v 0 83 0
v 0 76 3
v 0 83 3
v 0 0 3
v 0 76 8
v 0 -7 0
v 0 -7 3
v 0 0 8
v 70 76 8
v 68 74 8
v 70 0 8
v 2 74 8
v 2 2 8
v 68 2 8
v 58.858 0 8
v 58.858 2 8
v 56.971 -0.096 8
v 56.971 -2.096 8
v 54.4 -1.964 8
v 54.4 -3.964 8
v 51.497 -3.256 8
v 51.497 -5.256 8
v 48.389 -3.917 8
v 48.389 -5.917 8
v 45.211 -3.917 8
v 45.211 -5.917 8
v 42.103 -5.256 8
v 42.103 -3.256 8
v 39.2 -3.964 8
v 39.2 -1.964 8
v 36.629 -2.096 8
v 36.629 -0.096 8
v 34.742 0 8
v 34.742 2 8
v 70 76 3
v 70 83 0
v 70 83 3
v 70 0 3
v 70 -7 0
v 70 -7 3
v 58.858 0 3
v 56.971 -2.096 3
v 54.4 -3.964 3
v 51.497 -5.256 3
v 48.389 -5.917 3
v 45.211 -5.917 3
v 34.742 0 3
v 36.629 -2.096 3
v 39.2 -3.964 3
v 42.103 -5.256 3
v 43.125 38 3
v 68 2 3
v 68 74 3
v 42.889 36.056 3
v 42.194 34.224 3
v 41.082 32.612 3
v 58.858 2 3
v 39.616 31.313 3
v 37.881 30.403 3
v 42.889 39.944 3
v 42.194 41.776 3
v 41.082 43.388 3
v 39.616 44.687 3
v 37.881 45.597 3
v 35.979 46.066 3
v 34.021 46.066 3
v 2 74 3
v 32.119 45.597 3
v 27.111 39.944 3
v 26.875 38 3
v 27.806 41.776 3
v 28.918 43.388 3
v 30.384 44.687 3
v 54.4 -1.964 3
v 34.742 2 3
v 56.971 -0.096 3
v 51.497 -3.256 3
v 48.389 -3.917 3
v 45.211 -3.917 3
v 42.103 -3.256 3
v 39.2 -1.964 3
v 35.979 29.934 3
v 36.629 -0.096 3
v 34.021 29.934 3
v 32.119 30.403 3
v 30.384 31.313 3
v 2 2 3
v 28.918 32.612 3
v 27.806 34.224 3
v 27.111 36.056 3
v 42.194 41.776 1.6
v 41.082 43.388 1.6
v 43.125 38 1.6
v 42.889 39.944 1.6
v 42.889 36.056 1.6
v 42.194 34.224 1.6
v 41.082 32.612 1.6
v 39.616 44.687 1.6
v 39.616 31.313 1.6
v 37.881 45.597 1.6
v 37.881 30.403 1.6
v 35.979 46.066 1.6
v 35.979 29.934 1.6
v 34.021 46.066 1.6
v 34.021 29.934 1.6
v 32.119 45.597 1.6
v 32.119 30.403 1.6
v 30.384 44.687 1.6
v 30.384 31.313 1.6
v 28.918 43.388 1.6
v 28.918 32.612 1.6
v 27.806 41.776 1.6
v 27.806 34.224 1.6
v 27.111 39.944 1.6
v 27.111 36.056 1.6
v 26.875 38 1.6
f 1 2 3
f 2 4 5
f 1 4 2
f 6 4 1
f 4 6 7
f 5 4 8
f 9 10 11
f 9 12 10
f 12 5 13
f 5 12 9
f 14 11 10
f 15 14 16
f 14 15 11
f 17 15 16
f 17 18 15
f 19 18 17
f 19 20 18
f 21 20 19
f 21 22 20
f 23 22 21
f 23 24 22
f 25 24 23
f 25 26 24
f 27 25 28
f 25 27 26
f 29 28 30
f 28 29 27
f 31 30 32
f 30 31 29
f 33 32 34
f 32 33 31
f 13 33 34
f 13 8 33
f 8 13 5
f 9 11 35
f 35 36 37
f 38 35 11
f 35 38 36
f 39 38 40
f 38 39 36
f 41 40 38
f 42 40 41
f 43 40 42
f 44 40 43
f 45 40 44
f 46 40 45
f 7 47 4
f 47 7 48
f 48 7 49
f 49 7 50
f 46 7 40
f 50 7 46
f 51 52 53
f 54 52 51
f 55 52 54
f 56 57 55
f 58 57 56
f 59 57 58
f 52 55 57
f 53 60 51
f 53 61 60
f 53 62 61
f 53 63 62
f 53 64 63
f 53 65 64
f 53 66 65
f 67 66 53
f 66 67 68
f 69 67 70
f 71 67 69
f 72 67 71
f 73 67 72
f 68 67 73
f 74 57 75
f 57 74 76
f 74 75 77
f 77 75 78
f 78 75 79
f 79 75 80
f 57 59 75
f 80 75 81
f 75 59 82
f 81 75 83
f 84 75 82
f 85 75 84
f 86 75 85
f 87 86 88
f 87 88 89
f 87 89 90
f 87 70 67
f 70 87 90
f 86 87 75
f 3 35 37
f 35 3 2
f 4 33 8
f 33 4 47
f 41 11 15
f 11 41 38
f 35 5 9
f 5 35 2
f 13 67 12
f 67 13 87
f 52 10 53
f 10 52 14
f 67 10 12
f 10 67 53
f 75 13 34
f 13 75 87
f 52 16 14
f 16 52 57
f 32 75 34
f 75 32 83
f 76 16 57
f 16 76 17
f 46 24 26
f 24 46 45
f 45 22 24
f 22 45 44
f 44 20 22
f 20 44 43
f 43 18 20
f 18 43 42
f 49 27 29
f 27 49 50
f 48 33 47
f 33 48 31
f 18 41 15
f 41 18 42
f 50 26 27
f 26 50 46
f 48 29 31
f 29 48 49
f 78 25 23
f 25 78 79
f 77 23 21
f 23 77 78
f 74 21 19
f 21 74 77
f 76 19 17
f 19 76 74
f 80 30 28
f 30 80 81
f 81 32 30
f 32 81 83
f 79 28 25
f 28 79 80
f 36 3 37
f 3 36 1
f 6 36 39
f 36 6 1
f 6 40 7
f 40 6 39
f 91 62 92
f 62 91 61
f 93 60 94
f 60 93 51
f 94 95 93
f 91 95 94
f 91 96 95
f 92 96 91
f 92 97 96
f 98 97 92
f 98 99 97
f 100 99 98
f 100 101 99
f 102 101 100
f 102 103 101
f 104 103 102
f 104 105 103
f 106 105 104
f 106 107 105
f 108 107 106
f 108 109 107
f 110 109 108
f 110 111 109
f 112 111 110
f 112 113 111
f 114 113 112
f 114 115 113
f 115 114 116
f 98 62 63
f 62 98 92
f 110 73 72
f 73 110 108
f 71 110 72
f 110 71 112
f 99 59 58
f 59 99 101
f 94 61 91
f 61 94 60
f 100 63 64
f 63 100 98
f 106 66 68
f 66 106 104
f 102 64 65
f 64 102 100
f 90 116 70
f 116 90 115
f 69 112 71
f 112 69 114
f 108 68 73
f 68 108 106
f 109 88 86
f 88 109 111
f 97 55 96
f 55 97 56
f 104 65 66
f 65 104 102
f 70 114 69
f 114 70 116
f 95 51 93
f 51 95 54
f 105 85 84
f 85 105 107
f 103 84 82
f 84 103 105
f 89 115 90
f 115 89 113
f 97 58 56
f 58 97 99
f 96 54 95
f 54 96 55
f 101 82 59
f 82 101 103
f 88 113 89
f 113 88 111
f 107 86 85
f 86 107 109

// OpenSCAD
length = 65;
width = 71;
height = 3;
rimHeight = 5;
rimThickness = 2;
notchLength = 25;
//Based on washer size:
washerDiameter = 16.25;
washerHeight = 1.4;
rimPadding = 1;
totalHeight = height + rimHeight;

totalLength = length + rimThickness * 2 + rimPadding;
totalWidth = width + rimThickness * 2 + rimPadding;
extraLidForCircles = 7;



mediumCircleDiameter = 29.90 + .5;
mediumCircleOffset = 4;



union()
{
    difference() {
        translate([0, -extraLidForCircles, 0])
            cube([totalLength, totalWidth + 2 * extraLidForCircles, height]);
        translate([totalLength/2, totalWidth/2, height - washerHeight])
            cylinder(washerHeight, d=washerDiameter);
    }
    
    difference() {
        translate([0, 0, height])
            cube([totalLength, totalWidth, rimHeight]);
        translate([rimThickness, rimThickness, height])
            cube([length + rimPadding, width + rimPadding, rimHeight]);

        LeftLengthCircles();

    }
    
    difference(){
        union()
        {
            translate([0, -rimThickness, 0])
                LeftLengthCircles();


        }
        translate([0, 0, height])
            cube([totalLength, totalWidth, rimHeight]);

        LeftLengthCircles();

    }
}


module LeftLengthCircles()
{
    spaceBetweenCircles = 3;
    translate([length - (mediumCircleDiameter/2 + rimThickness + rimPadding), mediumCircleDiameter/2 - mediumCircleOffset, height])
        cylinder(rimHeight, d=mediumCircleDiameter);


}
